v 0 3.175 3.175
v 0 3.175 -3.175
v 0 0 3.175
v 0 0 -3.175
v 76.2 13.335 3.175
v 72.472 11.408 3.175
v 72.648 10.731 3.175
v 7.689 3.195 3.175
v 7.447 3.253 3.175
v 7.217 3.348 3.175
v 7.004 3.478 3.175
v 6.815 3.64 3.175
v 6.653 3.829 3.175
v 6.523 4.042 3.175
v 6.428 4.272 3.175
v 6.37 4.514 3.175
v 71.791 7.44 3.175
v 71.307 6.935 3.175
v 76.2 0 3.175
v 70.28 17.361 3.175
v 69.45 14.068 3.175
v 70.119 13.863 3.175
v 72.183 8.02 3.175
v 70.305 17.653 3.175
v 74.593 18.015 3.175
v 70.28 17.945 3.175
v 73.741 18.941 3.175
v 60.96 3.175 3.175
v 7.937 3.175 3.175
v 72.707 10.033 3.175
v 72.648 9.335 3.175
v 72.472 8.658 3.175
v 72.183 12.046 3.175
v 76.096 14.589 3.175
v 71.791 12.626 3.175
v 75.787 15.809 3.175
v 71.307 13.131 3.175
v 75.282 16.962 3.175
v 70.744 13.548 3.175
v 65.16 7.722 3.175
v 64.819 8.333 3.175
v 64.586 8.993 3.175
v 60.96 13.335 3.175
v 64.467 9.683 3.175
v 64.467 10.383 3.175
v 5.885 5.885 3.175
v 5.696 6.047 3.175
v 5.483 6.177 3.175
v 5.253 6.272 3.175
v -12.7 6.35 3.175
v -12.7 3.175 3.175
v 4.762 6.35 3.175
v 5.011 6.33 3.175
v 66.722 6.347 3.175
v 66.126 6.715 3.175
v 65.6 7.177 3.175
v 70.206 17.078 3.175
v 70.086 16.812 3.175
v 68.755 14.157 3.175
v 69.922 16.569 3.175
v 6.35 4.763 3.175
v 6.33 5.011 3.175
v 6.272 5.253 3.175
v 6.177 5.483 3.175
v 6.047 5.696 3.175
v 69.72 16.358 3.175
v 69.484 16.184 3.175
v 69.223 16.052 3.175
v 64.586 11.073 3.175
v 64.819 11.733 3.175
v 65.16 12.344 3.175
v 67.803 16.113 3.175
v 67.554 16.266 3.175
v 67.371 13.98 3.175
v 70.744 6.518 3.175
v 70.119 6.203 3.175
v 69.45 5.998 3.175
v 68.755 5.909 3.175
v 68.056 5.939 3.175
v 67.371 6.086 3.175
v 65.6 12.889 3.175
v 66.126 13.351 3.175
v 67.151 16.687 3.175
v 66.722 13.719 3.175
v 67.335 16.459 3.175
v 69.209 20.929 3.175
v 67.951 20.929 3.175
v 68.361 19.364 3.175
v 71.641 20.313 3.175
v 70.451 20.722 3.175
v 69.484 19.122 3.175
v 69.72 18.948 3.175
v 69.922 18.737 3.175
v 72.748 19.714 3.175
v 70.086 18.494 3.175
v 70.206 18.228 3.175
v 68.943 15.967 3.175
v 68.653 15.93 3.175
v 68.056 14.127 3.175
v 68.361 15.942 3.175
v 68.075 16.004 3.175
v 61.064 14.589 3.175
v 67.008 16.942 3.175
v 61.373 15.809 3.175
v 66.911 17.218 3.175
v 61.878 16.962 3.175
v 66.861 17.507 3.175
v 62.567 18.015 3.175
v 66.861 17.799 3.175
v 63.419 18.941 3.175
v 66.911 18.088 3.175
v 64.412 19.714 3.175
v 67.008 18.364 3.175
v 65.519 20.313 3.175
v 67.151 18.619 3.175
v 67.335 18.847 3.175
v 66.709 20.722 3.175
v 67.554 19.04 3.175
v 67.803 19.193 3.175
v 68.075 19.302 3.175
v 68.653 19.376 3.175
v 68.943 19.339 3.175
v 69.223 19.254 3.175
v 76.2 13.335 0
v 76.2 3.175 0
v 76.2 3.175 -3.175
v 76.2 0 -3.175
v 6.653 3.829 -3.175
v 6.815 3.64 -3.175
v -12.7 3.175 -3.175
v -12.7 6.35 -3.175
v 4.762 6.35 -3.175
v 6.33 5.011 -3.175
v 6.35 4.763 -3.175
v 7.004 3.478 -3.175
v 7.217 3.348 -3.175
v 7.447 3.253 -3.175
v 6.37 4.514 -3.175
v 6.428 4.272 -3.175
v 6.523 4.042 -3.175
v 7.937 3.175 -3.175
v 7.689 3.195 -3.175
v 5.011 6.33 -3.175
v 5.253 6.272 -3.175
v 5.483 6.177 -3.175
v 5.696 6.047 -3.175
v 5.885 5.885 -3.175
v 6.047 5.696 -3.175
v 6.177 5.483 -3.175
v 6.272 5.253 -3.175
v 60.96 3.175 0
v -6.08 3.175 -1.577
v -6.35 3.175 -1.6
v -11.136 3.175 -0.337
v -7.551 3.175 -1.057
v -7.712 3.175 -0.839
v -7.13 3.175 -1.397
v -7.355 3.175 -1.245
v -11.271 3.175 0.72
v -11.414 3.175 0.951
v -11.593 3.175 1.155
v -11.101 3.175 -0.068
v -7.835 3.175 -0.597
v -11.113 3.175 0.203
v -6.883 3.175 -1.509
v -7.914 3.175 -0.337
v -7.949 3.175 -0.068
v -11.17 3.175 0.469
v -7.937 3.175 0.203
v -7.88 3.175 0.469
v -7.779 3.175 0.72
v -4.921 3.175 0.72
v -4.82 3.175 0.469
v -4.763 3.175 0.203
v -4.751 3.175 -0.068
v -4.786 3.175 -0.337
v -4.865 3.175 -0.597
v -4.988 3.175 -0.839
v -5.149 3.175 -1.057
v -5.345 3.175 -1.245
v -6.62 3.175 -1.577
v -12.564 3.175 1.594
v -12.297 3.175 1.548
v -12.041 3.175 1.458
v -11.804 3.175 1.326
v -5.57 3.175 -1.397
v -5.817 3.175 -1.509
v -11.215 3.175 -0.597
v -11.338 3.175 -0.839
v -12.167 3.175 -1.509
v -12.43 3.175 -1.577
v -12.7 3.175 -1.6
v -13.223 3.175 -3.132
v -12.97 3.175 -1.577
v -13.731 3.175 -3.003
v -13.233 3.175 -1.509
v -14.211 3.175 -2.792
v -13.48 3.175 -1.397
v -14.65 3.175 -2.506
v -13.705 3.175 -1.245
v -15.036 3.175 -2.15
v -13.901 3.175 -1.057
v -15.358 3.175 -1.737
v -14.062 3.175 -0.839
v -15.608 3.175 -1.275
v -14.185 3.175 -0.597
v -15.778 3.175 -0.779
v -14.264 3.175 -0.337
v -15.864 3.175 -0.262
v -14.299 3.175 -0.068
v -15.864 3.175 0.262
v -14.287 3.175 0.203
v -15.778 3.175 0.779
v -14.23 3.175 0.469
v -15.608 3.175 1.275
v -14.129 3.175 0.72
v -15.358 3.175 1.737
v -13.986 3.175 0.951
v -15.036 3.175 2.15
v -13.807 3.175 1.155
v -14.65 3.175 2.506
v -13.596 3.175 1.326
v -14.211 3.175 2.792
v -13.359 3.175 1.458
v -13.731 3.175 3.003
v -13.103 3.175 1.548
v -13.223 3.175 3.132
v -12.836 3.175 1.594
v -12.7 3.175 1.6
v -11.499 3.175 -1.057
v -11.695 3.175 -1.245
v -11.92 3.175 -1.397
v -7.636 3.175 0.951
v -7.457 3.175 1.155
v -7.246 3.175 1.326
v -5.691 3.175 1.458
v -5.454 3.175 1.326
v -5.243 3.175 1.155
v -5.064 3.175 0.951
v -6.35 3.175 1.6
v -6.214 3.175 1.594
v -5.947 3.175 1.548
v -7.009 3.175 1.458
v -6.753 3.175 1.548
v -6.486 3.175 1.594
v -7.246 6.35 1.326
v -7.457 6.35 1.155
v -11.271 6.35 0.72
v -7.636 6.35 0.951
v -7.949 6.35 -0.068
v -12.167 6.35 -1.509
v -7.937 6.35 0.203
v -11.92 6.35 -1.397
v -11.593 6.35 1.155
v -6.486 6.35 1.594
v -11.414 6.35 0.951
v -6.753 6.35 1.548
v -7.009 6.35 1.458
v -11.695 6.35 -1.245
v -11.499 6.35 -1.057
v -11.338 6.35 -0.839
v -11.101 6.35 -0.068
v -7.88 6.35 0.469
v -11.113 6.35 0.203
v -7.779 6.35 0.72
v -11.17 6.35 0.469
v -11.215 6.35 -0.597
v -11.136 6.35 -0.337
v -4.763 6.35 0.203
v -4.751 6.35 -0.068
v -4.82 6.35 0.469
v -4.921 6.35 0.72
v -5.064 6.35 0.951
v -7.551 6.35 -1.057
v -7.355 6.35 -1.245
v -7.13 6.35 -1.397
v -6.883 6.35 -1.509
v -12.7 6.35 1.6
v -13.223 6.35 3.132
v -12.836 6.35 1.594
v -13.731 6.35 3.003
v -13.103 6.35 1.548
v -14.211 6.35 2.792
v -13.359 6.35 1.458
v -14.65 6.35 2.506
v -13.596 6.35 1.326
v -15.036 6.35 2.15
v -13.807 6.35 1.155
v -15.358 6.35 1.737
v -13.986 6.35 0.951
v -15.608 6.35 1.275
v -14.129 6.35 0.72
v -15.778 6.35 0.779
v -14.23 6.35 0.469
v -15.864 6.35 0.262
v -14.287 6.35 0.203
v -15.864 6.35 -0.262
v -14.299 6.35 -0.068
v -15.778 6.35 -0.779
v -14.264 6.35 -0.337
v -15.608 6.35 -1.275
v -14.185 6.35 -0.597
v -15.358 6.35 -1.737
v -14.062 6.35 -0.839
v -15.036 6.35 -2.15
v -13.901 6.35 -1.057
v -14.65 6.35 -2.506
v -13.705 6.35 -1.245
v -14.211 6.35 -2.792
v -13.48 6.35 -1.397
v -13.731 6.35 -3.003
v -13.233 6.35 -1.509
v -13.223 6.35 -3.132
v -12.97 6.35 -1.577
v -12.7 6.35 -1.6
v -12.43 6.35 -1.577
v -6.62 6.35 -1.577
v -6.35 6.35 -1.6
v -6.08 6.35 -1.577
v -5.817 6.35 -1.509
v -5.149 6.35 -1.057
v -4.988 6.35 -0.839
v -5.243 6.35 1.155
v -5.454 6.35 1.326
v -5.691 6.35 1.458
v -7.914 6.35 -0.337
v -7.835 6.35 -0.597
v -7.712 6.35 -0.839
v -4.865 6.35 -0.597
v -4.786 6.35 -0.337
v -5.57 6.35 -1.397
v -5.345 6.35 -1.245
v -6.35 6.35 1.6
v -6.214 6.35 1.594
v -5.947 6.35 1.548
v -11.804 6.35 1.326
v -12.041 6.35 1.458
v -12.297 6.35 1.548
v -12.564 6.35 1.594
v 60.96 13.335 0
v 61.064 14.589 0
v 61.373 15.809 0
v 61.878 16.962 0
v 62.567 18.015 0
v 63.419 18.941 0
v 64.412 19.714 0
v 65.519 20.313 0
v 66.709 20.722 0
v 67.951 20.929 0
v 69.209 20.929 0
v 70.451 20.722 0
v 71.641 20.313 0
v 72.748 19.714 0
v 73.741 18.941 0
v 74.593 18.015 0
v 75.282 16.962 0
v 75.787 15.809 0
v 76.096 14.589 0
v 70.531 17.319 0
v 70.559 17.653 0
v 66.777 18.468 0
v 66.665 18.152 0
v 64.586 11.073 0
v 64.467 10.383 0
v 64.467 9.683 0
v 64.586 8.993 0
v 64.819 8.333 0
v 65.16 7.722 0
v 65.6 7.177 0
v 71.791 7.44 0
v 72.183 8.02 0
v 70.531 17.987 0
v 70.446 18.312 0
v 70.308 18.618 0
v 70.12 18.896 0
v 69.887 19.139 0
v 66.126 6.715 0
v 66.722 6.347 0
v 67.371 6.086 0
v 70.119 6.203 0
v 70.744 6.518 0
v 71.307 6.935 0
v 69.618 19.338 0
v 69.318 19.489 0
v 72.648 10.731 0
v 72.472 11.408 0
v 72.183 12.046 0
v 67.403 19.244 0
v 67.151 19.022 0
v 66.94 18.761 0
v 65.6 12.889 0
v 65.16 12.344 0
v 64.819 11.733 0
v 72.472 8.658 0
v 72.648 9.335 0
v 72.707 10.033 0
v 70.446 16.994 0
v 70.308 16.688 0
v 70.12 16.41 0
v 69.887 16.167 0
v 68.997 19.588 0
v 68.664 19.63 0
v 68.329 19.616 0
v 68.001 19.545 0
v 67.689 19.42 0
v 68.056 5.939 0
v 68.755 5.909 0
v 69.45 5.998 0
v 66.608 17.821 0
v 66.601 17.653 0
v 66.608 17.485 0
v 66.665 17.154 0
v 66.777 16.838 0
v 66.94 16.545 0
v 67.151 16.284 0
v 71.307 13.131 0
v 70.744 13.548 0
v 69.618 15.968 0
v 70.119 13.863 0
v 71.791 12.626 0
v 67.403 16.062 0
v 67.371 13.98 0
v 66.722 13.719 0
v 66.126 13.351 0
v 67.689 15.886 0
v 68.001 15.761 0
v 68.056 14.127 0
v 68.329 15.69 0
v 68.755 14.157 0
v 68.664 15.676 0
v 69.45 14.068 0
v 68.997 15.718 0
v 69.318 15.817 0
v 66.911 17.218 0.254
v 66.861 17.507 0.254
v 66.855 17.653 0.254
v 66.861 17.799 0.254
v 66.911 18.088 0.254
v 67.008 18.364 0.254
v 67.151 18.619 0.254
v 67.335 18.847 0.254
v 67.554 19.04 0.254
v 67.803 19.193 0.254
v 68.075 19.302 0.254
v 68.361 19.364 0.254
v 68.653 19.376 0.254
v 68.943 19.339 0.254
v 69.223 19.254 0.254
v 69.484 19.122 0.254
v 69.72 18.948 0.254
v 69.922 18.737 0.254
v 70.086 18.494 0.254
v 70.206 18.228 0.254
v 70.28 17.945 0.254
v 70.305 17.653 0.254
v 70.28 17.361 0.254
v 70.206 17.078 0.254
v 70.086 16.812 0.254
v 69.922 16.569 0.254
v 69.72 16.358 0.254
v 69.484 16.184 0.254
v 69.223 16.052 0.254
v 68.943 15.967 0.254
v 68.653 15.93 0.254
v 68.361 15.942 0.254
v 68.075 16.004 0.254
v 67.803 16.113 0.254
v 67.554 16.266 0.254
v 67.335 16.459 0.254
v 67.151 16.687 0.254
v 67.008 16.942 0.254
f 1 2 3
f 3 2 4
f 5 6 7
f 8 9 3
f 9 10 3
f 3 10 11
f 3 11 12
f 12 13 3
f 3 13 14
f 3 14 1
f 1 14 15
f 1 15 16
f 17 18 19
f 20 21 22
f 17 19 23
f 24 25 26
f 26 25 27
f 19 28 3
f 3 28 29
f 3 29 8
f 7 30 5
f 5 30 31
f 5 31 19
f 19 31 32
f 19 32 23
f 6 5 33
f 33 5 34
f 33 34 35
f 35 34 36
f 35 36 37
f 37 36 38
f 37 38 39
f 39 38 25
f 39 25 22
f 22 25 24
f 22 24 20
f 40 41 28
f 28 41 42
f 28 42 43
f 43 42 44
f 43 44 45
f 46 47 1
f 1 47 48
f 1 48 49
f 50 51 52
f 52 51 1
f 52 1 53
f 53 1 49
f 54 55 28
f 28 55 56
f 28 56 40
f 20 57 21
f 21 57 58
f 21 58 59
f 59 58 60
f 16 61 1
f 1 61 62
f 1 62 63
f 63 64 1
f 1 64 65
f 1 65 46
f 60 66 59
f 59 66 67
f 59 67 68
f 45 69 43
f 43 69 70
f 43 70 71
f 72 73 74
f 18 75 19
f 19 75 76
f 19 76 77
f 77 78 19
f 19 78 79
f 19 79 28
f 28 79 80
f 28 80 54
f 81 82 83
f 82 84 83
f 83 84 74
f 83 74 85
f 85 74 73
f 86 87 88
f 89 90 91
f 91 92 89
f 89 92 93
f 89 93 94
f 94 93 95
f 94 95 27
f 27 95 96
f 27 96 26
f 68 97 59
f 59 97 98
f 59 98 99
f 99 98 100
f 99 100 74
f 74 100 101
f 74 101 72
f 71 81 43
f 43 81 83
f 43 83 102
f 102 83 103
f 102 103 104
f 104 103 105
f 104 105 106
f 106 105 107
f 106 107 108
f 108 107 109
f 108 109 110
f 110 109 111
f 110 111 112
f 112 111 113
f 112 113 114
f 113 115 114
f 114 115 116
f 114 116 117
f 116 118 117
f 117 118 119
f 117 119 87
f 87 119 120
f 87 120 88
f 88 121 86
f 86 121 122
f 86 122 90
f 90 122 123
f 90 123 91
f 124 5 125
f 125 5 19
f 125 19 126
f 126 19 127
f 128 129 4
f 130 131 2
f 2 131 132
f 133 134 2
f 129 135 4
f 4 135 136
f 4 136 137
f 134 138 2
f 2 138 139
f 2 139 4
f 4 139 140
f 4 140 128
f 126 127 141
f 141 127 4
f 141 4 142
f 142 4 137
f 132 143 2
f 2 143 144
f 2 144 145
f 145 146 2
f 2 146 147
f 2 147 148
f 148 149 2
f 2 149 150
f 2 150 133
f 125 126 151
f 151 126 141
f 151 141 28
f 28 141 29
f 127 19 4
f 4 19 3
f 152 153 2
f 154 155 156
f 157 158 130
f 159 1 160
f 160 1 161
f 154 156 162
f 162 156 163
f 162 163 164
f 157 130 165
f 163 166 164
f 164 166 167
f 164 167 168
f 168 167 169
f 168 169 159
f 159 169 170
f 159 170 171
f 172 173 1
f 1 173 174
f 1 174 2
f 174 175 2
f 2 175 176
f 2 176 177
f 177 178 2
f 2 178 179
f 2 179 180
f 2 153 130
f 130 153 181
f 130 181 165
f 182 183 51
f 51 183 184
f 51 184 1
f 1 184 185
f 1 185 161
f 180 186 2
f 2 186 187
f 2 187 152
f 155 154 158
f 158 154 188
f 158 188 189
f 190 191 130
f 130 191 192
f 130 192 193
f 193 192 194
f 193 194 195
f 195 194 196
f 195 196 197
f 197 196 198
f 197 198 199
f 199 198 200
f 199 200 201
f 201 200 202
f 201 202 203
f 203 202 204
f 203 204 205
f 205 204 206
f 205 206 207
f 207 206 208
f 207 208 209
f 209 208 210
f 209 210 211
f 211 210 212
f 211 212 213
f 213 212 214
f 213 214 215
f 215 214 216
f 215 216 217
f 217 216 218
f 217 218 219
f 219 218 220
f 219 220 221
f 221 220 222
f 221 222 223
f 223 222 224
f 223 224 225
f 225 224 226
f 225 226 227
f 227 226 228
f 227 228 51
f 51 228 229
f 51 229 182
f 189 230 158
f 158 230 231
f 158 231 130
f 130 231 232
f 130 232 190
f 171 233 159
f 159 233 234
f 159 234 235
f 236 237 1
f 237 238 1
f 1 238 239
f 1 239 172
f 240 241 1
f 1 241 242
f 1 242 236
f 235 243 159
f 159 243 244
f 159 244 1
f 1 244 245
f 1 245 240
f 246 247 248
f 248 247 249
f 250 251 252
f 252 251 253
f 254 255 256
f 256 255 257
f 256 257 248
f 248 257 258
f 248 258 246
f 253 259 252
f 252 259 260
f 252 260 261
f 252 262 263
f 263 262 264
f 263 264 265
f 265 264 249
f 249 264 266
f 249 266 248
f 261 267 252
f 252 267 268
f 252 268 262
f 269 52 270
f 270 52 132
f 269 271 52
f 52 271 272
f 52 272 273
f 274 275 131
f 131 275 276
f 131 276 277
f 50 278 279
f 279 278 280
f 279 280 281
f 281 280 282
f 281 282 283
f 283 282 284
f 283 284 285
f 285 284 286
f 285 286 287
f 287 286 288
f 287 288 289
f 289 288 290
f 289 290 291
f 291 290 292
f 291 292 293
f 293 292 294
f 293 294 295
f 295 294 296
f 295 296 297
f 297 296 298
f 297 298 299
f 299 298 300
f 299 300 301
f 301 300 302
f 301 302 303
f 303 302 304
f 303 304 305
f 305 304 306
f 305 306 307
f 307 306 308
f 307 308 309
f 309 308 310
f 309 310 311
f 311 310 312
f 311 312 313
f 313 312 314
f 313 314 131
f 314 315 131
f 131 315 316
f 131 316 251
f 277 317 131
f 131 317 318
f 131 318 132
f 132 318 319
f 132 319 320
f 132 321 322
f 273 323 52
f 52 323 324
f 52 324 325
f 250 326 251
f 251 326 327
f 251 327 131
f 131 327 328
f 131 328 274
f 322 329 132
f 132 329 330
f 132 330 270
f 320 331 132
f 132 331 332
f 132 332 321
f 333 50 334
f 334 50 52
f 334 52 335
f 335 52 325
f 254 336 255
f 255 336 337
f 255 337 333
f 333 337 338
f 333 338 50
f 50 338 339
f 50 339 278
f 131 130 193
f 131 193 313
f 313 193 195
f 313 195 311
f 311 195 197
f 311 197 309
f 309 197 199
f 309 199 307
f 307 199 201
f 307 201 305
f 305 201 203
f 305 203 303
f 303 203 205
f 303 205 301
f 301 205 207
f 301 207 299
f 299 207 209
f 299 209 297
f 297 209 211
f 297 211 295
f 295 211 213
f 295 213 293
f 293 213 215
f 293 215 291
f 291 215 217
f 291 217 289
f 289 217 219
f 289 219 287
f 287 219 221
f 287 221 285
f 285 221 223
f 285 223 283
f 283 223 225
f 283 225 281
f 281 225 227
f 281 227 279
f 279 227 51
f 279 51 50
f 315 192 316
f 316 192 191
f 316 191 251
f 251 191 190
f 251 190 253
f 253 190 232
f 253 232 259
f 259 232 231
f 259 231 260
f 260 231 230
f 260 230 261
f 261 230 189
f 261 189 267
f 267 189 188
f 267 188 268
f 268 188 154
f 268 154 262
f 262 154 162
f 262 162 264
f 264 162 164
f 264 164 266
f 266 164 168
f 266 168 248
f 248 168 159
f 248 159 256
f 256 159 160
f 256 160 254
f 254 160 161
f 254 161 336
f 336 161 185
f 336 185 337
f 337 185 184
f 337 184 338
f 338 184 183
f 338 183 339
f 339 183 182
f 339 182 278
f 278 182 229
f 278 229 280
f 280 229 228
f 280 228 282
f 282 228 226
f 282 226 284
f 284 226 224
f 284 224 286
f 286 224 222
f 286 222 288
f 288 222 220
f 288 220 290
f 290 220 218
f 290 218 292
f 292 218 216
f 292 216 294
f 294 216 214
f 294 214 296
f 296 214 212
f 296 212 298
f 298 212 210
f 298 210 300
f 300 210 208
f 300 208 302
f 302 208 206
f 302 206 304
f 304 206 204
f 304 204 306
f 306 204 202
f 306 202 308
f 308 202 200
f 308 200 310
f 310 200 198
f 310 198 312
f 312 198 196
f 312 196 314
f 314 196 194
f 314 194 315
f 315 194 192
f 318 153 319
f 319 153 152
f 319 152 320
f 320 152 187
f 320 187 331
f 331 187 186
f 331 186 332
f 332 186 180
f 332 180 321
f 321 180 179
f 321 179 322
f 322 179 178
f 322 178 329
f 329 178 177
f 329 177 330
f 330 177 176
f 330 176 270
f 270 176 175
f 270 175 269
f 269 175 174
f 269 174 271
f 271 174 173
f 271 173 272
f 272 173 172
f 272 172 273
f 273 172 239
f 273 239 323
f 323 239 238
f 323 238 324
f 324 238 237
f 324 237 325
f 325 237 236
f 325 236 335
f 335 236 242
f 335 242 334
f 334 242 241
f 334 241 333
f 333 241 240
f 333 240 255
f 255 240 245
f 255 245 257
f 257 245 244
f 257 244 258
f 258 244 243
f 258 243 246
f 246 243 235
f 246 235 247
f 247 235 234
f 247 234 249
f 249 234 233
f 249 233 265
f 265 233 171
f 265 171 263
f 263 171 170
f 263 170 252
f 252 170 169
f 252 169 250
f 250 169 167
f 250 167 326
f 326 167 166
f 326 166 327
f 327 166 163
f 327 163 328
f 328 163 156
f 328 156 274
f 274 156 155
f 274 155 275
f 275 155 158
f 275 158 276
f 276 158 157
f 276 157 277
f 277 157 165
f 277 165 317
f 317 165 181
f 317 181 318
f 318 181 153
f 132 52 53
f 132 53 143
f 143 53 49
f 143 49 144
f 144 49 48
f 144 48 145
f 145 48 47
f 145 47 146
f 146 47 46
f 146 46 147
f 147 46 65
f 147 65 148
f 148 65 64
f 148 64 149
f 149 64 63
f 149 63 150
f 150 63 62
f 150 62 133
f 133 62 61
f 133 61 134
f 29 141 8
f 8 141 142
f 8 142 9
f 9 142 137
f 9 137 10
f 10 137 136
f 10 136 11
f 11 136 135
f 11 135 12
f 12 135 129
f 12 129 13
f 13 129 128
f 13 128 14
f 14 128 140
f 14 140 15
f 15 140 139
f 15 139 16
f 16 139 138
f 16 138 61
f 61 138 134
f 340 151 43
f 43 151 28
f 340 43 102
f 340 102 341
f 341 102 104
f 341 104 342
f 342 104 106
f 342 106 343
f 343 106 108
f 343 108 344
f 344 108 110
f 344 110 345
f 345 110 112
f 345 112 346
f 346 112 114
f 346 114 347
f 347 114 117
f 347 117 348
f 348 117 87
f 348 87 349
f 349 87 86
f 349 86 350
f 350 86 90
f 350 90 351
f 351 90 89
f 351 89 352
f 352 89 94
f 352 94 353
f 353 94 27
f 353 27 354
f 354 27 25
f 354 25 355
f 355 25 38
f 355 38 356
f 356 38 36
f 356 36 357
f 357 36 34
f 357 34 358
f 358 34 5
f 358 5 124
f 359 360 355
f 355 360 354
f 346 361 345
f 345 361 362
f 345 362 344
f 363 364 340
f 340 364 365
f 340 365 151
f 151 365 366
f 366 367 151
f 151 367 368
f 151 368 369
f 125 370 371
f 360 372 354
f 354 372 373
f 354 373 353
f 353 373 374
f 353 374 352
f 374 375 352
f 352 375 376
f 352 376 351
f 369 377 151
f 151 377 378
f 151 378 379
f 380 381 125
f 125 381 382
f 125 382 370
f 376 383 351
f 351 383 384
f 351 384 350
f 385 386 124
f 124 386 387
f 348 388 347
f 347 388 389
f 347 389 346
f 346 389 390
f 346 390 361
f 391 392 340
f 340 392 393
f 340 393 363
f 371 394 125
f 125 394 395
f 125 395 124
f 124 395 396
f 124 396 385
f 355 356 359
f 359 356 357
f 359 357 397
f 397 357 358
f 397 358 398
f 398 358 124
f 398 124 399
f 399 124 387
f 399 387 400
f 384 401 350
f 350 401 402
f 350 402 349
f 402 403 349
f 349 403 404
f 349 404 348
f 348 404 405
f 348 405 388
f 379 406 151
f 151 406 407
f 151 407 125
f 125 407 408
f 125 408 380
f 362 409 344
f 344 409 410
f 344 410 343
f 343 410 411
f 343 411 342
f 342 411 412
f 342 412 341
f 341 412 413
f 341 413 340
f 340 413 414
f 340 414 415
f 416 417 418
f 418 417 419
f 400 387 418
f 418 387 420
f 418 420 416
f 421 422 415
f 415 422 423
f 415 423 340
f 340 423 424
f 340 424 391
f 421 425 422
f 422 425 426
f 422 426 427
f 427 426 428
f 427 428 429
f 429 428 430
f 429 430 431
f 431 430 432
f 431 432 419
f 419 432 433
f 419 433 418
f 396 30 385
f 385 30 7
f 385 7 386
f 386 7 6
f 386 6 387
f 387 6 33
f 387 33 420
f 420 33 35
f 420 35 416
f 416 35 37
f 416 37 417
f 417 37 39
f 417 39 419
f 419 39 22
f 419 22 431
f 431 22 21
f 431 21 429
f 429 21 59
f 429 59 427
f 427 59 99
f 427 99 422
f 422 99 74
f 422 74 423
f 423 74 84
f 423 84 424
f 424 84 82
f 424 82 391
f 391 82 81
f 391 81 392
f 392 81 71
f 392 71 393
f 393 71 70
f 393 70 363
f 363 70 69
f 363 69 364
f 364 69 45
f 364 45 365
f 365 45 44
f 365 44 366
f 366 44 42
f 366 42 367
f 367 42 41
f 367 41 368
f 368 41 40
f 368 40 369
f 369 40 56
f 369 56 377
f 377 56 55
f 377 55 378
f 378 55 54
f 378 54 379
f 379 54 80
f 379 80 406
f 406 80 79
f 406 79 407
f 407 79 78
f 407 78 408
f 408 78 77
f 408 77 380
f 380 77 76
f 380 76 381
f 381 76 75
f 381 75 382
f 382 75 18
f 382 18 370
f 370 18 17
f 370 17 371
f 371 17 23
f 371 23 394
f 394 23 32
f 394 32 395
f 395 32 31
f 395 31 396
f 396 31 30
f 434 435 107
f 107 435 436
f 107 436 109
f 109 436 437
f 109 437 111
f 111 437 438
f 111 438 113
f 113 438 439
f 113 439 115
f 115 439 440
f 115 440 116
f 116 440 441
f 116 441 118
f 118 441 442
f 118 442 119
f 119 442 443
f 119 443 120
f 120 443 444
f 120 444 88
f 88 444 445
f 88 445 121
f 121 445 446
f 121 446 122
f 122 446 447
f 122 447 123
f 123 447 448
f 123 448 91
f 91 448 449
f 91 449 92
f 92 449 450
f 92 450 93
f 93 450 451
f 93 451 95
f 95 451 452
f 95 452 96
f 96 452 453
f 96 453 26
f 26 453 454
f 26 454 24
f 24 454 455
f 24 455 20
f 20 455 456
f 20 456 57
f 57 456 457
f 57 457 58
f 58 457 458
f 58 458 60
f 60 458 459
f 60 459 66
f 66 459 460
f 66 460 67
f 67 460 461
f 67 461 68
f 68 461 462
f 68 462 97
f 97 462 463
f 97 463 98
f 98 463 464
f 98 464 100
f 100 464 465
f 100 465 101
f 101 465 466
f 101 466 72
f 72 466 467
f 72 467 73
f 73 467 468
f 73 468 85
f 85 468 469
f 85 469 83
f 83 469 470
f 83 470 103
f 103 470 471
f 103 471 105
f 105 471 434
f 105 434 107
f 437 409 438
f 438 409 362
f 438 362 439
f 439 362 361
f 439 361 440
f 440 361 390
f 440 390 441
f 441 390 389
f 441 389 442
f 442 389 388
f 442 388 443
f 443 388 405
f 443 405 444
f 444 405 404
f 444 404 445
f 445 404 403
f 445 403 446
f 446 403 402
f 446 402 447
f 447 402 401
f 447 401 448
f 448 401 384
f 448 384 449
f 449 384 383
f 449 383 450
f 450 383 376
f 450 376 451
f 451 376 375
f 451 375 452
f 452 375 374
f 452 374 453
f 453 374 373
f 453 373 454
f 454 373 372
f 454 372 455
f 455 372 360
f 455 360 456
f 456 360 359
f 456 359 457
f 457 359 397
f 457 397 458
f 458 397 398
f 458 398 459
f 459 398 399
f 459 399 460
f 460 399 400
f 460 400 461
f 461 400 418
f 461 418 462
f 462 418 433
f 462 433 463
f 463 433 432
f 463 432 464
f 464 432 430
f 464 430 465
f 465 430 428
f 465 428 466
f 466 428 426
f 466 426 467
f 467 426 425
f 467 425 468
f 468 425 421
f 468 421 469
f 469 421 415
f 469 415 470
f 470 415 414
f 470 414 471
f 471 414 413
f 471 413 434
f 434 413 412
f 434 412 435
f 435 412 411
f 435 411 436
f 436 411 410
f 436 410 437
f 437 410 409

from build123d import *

# Parameters (mm, degrees)
SKETCH2_W           = 76.2
SKETCH2_H           = 6.35
BOSS_EXTRUDE1_DEPTH = 3.175
SKETCH3_R           = 1.6
BOSS_EXTRUDE2_DEPTH = 3.175
FILLET1_START       = -4
FILLET1_DEPTH       = 8
FILLET1_START_2     = -3.175
FILLET1_2_DEPTH     = 6.35
SKETCH6_R           = 4.1275
SKETCH6_R_2         = 1.725
BOSS_EXTRUDE4_DEPTH = 3.175
CHAMFER2_SIZE       = 0.254


with BuildPart() as part:
    # Sketch2 → Boss-Extrude1 (new body)
    with BuildSketch(Plane(origin=(0, 0, 0), x_dir=(1, 0, 0), z_dir=(0, 1, 0))):
        with Locations((38.1, 0)):
            Rectangle(SKETCH2_W, SKETCH2_H)
    extrude(amount=BOSS_EXTRUDE1_DEPTH)

    # Sketch3 → Boss-Extrude2 (add)
    with BuildSketch(Plane(origin=(0, 3.175, 0), x_dir=(1, 0, 0), z_dir=(0, 1, 0))):
        with BuildLine():
            Line((6.35, 3.175), (-12.7, 3.175))
            ThreePointArc((-12.7, 3.175), (-15.875, 0), (-12.7, -3.175))
            Line((-12.7, -3.175), (6.35, -3.175))
            Line((6.35, -3.175), (6.35, 3.175))
        make_face()
        with Locations(Location((-12.7, 0, 0), (0, 0, 270))):
            Circle(SKETCH3_R, mode=Mode.SUBTRACT)
        with Locations(Location((-6.35, 0, 0), (0, 0, 270))):
            Circle(SKETCH3_R, mode=Mode.SUBTRACT)
    extrude(amount=BOSS_EXTRUDE2_DEPTH)

    # Fillet1: read off the stored shape, not the designer's step
    # Fillet1 outline → Fillet1 (cut)
    with BuildSketch(Plane.XY.offset(FILLET1_START)):
        with BuildLine():
            ThreePointArc((4.7625, 6.35), (5.885032015, 5.885032015), (6.35, 4.7625))
            Line((6.35, 4.7625), (6.35, 6.35))
            Line((6.35, 6.35), (4.7625, 6.35))
        make_face()
    extrude(amount=FILLET1_DEPTH, mode=Mode.SUBTRACT)

    # Fillet1 2 outline → Fillet1 2 (add)
    with BuildSketch(Plane.XY.offset(FILLET1_START_2)):
        with BuildLine():
            ThreePointArc((7.9375, 3.175), (6.814967985, 3.639967985), (6.35, 4.7625))
            Line((6.35, 4.7625), (6.35, 3.175))
            Line((6.35, 3.175), (7.9375, 3.175))
        make_face()
    extrude(amount=FILLET1_2_DEPTH)

    # Sketch6 → Boss-Extrude4 (add)
    with BuildSketch(Plane.XY.offset(3.175)):
        with BuildLine():
            Line((76.2, 3.175), (60.96, 3.175))
            Line((60.96, 3.175), (60.96, 13.335))
            ThreePointArc((60.96, 13.335), (68.58, 20.955), (76.2, 13.335))
            Line((76.2, 13.335), (76.2, 3.175))
        make_face()
        with Locations((68.58, 10.033)):
            Circle(SKETCH6_R, mode=Mode.SUBTRACT)
        with Locations((68.58, 17.653)):
            Circle(SKETCH6_R_2, mode=Mode.SUBTRACT)
    extrude(amount=-BOSS_EXTRUDE4_DEPTH)

    # Chamfer2
    chamfer2_edges = [part.edges().sort_by_distance(p)[0] for p in [
        (66.855, 17.653, 0),
    ]]
    chamfer(chamfer2_edges, length=CHAMFER2_SIZE)


solid = part.part
